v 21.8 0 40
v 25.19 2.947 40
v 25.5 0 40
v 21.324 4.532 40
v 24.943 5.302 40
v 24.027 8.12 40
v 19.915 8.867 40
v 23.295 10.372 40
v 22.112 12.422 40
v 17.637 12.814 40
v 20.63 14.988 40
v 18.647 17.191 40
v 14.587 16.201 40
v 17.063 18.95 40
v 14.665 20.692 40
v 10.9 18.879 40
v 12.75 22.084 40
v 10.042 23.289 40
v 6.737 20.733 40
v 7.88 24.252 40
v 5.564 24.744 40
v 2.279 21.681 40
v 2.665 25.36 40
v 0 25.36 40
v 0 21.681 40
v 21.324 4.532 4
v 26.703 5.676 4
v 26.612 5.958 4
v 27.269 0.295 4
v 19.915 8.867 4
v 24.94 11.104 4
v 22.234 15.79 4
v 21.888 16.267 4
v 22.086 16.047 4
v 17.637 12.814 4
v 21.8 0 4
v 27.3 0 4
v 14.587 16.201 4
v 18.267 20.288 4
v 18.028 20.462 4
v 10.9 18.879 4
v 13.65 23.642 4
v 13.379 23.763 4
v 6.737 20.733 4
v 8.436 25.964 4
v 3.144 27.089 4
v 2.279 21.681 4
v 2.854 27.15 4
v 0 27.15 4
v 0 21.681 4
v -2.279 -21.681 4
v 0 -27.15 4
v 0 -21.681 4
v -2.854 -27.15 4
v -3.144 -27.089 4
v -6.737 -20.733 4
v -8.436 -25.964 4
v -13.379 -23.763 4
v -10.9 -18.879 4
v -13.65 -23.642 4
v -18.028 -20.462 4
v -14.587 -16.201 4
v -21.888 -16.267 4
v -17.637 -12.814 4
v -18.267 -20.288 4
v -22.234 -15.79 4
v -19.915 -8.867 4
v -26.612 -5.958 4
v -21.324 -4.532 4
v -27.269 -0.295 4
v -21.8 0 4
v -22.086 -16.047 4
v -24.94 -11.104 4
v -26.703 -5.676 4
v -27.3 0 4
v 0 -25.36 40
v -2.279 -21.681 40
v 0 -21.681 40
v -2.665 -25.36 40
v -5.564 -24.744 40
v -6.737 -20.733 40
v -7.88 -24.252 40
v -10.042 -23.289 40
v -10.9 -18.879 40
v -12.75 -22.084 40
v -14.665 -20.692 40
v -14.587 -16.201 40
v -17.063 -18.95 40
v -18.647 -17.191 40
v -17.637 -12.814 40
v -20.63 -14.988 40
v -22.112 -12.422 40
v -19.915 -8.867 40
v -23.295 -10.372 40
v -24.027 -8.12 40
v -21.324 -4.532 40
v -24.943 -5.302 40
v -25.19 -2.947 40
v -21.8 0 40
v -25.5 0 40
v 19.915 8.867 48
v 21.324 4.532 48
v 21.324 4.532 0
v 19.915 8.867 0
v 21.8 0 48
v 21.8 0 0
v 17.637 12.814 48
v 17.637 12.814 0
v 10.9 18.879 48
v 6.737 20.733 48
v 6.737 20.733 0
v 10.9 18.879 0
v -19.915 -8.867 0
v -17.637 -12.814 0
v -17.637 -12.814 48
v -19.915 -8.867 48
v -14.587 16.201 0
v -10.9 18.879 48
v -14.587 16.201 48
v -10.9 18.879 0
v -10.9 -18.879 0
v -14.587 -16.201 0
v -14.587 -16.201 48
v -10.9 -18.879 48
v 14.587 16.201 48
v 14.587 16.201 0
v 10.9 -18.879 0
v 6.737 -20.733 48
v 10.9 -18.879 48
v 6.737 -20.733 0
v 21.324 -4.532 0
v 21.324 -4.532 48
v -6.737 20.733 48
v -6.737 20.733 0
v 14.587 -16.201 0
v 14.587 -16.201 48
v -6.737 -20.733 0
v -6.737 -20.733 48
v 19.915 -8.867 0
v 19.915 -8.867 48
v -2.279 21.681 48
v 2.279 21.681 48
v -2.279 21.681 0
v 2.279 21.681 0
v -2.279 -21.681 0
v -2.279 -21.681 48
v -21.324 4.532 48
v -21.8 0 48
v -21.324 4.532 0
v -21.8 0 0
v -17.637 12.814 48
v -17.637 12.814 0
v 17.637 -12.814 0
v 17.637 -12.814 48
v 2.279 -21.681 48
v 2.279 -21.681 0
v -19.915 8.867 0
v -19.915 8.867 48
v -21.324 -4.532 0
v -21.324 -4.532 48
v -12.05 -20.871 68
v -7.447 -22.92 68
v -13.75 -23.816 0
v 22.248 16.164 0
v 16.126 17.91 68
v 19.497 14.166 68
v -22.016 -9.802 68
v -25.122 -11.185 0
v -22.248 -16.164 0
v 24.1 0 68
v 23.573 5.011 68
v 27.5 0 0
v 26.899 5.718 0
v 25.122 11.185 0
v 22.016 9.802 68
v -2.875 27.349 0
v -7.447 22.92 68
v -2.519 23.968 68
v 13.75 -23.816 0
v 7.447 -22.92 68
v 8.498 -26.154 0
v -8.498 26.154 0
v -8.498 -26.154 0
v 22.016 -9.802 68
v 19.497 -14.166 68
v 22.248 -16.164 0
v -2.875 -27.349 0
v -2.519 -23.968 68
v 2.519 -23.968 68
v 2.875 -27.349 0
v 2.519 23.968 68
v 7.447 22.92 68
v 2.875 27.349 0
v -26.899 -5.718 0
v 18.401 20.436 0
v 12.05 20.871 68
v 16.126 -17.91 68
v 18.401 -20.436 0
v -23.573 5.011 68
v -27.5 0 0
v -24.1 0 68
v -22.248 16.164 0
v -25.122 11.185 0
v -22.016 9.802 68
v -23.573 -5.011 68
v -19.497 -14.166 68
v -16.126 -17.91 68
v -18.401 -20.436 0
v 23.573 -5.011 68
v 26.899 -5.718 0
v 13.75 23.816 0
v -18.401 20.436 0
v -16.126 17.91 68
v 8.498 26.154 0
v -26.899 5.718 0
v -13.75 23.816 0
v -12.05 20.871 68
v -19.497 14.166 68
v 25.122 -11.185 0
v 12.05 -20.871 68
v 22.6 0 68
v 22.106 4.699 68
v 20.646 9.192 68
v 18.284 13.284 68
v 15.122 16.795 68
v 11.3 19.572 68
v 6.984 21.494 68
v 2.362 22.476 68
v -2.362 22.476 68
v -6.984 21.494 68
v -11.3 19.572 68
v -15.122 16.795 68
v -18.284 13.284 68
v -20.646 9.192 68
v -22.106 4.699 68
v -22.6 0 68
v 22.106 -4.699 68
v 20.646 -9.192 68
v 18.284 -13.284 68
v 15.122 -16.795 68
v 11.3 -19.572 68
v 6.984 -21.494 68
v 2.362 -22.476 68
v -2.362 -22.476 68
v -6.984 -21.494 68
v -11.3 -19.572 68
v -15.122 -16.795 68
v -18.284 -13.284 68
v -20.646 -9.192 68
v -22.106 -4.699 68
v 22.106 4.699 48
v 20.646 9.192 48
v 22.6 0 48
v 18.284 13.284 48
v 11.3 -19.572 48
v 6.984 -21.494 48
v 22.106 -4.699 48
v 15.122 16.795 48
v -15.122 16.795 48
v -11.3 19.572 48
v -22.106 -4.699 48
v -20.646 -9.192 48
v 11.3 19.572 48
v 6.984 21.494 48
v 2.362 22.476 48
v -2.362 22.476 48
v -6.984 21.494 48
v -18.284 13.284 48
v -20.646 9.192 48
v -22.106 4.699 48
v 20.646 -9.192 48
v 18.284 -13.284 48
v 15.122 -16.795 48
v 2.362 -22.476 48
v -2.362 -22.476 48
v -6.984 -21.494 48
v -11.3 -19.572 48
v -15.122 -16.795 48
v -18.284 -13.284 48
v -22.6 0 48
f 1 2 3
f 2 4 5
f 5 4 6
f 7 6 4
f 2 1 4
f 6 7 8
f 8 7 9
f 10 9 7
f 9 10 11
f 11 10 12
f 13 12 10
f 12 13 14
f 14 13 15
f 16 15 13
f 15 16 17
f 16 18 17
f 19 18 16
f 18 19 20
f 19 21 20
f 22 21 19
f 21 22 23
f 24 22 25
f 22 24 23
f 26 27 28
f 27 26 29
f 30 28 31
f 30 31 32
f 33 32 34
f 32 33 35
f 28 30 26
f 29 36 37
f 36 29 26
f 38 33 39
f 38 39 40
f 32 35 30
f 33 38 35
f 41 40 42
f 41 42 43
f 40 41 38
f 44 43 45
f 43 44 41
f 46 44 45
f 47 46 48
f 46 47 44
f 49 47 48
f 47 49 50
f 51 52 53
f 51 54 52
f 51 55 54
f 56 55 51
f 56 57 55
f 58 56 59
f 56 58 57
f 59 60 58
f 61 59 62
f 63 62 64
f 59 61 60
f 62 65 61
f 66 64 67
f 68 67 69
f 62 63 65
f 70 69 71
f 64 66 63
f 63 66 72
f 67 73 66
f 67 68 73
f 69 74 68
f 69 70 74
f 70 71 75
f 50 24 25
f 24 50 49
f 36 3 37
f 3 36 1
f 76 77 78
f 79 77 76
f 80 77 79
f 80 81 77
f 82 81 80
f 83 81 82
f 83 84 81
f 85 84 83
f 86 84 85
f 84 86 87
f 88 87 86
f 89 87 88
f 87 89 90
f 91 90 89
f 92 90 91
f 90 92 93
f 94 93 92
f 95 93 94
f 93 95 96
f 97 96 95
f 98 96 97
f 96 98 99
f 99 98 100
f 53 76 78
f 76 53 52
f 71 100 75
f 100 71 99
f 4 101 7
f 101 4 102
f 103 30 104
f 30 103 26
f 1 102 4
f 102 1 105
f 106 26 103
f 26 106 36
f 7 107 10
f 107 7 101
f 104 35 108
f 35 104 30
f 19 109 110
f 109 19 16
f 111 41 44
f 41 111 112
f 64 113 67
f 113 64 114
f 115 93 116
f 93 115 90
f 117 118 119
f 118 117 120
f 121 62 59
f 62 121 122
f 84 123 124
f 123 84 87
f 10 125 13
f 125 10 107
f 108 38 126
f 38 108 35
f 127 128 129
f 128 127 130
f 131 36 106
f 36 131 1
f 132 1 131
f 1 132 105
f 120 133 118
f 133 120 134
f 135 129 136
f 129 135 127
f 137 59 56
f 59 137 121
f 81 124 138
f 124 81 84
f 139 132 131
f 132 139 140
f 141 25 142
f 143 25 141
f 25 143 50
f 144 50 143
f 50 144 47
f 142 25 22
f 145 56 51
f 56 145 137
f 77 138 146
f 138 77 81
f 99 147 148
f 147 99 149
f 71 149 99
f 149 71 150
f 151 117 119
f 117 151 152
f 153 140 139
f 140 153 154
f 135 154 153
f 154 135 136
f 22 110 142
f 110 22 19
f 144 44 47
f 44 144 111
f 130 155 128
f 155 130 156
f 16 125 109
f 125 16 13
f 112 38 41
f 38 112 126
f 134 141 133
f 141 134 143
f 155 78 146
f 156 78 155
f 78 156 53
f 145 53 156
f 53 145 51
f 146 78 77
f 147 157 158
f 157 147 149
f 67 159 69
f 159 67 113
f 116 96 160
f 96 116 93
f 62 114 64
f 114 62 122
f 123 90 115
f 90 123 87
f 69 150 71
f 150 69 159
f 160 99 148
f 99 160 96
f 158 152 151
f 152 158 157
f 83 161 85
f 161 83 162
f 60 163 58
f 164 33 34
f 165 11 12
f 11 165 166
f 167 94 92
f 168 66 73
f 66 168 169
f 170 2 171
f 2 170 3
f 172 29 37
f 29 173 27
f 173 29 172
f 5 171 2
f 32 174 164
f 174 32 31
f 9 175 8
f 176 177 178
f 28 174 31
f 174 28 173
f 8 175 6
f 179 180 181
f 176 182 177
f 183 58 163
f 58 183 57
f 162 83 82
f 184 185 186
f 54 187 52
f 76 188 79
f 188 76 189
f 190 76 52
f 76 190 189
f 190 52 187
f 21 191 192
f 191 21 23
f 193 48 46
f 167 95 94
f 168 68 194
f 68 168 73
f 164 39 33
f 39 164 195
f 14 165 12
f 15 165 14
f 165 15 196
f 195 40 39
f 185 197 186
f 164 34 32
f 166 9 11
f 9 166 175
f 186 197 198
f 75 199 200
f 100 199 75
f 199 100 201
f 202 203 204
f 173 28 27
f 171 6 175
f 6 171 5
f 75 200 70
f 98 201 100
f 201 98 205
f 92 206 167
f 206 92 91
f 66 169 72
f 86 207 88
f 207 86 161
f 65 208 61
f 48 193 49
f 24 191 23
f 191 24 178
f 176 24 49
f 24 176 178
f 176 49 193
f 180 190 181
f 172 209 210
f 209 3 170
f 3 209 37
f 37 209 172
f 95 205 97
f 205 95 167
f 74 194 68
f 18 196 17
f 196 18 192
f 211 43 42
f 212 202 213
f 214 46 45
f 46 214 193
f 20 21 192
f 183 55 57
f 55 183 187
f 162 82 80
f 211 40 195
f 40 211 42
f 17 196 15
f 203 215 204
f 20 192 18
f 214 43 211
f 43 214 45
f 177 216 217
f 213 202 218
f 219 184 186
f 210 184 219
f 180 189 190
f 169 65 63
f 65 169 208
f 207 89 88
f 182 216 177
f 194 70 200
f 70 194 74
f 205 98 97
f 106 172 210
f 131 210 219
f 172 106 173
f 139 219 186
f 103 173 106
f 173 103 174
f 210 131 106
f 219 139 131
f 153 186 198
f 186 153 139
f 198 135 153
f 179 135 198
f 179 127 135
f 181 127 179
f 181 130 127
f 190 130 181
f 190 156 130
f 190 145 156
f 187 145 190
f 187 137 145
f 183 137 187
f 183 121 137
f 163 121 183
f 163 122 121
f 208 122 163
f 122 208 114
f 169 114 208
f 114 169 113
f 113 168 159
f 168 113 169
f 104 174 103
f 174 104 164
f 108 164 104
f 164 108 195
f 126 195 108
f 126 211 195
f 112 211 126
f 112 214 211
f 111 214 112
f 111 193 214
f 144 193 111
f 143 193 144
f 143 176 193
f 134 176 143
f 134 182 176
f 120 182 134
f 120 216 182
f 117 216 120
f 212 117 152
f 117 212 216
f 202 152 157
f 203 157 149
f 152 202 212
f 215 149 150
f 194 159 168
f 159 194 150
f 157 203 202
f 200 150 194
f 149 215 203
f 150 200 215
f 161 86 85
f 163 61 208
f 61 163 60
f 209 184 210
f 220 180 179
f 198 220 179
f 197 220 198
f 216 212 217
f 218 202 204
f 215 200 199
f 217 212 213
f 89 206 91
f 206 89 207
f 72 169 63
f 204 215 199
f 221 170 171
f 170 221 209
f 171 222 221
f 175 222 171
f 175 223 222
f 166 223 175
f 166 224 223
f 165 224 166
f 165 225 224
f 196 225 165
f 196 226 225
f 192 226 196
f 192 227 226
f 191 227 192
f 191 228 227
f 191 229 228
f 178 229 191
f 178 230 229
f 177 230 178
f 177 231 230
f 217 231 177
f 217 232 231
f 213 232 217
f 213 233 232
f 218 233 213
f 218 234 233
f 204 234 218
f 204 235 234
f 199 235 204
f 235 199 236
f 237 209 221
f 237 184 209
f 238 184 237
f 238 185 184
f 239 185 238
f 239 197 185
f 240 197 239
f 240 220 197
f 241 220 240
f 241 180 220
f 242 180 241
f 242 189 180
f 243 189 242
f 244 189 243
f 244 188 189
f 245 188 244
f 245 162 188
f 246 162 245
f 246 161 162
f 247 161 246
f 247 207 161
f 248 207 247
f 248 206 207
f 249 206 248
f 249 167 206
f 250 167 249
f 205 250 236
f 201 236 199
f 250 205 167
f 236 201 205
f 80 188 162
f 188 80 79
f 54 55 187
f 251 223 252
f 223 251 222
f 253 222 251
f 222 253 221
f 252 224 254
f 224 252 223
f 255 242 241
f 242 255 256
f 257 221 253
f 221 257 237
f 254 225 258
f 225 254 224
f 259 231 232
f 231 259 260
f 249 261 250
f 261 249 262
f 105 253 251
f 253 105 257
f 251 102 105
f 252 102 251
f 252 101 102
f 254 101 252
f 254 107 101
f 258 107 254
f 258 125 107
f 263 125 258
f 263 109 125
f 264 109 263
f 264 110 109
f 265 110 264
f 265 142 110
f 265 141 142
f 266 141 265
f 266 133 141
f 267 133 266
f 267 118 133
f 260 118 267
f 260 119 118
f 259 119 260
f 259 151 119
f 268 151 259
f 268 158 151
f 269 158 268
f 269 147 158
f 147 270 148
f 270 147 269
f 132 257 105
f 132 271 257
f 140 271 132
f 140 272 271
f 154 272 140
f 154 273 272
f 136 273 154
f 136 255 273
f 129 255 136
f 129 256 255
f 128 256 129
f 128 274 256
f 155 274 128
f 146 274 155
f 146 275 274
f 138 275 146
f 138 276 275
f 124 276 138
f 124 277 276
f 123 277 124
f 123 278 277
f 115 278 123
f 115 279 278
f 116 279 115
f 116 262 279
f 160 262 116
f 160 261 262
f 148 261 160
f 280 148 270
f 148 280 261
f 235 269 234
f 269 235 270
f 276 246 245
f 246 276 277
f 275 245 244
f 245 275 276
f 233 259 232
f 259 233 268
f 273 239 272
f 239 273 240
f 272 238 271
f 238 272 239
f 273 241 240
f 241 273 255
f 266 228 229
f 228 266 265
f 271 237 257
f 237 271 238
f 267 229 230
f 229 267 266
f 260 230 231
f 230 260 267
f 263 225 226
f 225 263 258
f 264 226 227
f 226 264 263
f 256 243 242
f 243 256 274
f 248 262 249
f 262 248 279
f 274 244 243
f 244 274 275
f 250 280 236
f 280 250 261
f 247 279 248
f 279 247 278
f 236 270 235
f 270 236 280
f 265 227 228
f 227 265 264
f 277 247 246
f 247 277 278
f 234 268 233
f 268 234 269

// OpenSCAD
//
// airspy_tower.scad
// The tower pedestal for AirSpy
//
// Copyright (c) 2020 Pete Zaitcev

// The main size is the diagonal of the case, or internal diameter of the cup.
dia_int = 45.2;
dia_ext_top = dia_int + 3.0;
dia_ext_bottom = 55.0;

// The device is this high off the base, in order to accomodata USB cables.
height_shelf = 48.0;

cut_height = height_shelf - 12.0;

module design () {
    difference () {
        cylinder(height_shelf+20.0, dia_ext_bottom/2, dia_ext_top/2);

        // This is the cup where the device sit
        translate([0, 0, height_shelf])
            cylinder(20.0+0.1, dia_int/2, dia_int/2);

        // The bottom cut for USB cables and air circulation
        union () {
            translate([0, 0, -0.1])
                cylinder(height_shelf+0.2, (dia_int-1.6)/2, (dia_int-1.6)/2);
            translate([0, 0, 4.0]) {
                intersection () {
                    cylinder(cut_height+0.1,
                             dia_ext_bottom/2 + 0.1, dia_ext_bottom/2 + 0.1);
                    // What we really want here is a sector, but making that
                    // is more trouble than it's worth.
                    union () {
                        cube([dia_ext_bottom/2 + 0.1, dia_ext_bottom/2 + 0.1,
                             cut_height]);
                        rotate(180, [0,0,1])
                            cube([dia_ext_bottom/2 + 0.1,
                                 dia_ext_bottom/2 + 0.1, cut_height]);
                    }
                }
            }
        }
    }
}

design();
